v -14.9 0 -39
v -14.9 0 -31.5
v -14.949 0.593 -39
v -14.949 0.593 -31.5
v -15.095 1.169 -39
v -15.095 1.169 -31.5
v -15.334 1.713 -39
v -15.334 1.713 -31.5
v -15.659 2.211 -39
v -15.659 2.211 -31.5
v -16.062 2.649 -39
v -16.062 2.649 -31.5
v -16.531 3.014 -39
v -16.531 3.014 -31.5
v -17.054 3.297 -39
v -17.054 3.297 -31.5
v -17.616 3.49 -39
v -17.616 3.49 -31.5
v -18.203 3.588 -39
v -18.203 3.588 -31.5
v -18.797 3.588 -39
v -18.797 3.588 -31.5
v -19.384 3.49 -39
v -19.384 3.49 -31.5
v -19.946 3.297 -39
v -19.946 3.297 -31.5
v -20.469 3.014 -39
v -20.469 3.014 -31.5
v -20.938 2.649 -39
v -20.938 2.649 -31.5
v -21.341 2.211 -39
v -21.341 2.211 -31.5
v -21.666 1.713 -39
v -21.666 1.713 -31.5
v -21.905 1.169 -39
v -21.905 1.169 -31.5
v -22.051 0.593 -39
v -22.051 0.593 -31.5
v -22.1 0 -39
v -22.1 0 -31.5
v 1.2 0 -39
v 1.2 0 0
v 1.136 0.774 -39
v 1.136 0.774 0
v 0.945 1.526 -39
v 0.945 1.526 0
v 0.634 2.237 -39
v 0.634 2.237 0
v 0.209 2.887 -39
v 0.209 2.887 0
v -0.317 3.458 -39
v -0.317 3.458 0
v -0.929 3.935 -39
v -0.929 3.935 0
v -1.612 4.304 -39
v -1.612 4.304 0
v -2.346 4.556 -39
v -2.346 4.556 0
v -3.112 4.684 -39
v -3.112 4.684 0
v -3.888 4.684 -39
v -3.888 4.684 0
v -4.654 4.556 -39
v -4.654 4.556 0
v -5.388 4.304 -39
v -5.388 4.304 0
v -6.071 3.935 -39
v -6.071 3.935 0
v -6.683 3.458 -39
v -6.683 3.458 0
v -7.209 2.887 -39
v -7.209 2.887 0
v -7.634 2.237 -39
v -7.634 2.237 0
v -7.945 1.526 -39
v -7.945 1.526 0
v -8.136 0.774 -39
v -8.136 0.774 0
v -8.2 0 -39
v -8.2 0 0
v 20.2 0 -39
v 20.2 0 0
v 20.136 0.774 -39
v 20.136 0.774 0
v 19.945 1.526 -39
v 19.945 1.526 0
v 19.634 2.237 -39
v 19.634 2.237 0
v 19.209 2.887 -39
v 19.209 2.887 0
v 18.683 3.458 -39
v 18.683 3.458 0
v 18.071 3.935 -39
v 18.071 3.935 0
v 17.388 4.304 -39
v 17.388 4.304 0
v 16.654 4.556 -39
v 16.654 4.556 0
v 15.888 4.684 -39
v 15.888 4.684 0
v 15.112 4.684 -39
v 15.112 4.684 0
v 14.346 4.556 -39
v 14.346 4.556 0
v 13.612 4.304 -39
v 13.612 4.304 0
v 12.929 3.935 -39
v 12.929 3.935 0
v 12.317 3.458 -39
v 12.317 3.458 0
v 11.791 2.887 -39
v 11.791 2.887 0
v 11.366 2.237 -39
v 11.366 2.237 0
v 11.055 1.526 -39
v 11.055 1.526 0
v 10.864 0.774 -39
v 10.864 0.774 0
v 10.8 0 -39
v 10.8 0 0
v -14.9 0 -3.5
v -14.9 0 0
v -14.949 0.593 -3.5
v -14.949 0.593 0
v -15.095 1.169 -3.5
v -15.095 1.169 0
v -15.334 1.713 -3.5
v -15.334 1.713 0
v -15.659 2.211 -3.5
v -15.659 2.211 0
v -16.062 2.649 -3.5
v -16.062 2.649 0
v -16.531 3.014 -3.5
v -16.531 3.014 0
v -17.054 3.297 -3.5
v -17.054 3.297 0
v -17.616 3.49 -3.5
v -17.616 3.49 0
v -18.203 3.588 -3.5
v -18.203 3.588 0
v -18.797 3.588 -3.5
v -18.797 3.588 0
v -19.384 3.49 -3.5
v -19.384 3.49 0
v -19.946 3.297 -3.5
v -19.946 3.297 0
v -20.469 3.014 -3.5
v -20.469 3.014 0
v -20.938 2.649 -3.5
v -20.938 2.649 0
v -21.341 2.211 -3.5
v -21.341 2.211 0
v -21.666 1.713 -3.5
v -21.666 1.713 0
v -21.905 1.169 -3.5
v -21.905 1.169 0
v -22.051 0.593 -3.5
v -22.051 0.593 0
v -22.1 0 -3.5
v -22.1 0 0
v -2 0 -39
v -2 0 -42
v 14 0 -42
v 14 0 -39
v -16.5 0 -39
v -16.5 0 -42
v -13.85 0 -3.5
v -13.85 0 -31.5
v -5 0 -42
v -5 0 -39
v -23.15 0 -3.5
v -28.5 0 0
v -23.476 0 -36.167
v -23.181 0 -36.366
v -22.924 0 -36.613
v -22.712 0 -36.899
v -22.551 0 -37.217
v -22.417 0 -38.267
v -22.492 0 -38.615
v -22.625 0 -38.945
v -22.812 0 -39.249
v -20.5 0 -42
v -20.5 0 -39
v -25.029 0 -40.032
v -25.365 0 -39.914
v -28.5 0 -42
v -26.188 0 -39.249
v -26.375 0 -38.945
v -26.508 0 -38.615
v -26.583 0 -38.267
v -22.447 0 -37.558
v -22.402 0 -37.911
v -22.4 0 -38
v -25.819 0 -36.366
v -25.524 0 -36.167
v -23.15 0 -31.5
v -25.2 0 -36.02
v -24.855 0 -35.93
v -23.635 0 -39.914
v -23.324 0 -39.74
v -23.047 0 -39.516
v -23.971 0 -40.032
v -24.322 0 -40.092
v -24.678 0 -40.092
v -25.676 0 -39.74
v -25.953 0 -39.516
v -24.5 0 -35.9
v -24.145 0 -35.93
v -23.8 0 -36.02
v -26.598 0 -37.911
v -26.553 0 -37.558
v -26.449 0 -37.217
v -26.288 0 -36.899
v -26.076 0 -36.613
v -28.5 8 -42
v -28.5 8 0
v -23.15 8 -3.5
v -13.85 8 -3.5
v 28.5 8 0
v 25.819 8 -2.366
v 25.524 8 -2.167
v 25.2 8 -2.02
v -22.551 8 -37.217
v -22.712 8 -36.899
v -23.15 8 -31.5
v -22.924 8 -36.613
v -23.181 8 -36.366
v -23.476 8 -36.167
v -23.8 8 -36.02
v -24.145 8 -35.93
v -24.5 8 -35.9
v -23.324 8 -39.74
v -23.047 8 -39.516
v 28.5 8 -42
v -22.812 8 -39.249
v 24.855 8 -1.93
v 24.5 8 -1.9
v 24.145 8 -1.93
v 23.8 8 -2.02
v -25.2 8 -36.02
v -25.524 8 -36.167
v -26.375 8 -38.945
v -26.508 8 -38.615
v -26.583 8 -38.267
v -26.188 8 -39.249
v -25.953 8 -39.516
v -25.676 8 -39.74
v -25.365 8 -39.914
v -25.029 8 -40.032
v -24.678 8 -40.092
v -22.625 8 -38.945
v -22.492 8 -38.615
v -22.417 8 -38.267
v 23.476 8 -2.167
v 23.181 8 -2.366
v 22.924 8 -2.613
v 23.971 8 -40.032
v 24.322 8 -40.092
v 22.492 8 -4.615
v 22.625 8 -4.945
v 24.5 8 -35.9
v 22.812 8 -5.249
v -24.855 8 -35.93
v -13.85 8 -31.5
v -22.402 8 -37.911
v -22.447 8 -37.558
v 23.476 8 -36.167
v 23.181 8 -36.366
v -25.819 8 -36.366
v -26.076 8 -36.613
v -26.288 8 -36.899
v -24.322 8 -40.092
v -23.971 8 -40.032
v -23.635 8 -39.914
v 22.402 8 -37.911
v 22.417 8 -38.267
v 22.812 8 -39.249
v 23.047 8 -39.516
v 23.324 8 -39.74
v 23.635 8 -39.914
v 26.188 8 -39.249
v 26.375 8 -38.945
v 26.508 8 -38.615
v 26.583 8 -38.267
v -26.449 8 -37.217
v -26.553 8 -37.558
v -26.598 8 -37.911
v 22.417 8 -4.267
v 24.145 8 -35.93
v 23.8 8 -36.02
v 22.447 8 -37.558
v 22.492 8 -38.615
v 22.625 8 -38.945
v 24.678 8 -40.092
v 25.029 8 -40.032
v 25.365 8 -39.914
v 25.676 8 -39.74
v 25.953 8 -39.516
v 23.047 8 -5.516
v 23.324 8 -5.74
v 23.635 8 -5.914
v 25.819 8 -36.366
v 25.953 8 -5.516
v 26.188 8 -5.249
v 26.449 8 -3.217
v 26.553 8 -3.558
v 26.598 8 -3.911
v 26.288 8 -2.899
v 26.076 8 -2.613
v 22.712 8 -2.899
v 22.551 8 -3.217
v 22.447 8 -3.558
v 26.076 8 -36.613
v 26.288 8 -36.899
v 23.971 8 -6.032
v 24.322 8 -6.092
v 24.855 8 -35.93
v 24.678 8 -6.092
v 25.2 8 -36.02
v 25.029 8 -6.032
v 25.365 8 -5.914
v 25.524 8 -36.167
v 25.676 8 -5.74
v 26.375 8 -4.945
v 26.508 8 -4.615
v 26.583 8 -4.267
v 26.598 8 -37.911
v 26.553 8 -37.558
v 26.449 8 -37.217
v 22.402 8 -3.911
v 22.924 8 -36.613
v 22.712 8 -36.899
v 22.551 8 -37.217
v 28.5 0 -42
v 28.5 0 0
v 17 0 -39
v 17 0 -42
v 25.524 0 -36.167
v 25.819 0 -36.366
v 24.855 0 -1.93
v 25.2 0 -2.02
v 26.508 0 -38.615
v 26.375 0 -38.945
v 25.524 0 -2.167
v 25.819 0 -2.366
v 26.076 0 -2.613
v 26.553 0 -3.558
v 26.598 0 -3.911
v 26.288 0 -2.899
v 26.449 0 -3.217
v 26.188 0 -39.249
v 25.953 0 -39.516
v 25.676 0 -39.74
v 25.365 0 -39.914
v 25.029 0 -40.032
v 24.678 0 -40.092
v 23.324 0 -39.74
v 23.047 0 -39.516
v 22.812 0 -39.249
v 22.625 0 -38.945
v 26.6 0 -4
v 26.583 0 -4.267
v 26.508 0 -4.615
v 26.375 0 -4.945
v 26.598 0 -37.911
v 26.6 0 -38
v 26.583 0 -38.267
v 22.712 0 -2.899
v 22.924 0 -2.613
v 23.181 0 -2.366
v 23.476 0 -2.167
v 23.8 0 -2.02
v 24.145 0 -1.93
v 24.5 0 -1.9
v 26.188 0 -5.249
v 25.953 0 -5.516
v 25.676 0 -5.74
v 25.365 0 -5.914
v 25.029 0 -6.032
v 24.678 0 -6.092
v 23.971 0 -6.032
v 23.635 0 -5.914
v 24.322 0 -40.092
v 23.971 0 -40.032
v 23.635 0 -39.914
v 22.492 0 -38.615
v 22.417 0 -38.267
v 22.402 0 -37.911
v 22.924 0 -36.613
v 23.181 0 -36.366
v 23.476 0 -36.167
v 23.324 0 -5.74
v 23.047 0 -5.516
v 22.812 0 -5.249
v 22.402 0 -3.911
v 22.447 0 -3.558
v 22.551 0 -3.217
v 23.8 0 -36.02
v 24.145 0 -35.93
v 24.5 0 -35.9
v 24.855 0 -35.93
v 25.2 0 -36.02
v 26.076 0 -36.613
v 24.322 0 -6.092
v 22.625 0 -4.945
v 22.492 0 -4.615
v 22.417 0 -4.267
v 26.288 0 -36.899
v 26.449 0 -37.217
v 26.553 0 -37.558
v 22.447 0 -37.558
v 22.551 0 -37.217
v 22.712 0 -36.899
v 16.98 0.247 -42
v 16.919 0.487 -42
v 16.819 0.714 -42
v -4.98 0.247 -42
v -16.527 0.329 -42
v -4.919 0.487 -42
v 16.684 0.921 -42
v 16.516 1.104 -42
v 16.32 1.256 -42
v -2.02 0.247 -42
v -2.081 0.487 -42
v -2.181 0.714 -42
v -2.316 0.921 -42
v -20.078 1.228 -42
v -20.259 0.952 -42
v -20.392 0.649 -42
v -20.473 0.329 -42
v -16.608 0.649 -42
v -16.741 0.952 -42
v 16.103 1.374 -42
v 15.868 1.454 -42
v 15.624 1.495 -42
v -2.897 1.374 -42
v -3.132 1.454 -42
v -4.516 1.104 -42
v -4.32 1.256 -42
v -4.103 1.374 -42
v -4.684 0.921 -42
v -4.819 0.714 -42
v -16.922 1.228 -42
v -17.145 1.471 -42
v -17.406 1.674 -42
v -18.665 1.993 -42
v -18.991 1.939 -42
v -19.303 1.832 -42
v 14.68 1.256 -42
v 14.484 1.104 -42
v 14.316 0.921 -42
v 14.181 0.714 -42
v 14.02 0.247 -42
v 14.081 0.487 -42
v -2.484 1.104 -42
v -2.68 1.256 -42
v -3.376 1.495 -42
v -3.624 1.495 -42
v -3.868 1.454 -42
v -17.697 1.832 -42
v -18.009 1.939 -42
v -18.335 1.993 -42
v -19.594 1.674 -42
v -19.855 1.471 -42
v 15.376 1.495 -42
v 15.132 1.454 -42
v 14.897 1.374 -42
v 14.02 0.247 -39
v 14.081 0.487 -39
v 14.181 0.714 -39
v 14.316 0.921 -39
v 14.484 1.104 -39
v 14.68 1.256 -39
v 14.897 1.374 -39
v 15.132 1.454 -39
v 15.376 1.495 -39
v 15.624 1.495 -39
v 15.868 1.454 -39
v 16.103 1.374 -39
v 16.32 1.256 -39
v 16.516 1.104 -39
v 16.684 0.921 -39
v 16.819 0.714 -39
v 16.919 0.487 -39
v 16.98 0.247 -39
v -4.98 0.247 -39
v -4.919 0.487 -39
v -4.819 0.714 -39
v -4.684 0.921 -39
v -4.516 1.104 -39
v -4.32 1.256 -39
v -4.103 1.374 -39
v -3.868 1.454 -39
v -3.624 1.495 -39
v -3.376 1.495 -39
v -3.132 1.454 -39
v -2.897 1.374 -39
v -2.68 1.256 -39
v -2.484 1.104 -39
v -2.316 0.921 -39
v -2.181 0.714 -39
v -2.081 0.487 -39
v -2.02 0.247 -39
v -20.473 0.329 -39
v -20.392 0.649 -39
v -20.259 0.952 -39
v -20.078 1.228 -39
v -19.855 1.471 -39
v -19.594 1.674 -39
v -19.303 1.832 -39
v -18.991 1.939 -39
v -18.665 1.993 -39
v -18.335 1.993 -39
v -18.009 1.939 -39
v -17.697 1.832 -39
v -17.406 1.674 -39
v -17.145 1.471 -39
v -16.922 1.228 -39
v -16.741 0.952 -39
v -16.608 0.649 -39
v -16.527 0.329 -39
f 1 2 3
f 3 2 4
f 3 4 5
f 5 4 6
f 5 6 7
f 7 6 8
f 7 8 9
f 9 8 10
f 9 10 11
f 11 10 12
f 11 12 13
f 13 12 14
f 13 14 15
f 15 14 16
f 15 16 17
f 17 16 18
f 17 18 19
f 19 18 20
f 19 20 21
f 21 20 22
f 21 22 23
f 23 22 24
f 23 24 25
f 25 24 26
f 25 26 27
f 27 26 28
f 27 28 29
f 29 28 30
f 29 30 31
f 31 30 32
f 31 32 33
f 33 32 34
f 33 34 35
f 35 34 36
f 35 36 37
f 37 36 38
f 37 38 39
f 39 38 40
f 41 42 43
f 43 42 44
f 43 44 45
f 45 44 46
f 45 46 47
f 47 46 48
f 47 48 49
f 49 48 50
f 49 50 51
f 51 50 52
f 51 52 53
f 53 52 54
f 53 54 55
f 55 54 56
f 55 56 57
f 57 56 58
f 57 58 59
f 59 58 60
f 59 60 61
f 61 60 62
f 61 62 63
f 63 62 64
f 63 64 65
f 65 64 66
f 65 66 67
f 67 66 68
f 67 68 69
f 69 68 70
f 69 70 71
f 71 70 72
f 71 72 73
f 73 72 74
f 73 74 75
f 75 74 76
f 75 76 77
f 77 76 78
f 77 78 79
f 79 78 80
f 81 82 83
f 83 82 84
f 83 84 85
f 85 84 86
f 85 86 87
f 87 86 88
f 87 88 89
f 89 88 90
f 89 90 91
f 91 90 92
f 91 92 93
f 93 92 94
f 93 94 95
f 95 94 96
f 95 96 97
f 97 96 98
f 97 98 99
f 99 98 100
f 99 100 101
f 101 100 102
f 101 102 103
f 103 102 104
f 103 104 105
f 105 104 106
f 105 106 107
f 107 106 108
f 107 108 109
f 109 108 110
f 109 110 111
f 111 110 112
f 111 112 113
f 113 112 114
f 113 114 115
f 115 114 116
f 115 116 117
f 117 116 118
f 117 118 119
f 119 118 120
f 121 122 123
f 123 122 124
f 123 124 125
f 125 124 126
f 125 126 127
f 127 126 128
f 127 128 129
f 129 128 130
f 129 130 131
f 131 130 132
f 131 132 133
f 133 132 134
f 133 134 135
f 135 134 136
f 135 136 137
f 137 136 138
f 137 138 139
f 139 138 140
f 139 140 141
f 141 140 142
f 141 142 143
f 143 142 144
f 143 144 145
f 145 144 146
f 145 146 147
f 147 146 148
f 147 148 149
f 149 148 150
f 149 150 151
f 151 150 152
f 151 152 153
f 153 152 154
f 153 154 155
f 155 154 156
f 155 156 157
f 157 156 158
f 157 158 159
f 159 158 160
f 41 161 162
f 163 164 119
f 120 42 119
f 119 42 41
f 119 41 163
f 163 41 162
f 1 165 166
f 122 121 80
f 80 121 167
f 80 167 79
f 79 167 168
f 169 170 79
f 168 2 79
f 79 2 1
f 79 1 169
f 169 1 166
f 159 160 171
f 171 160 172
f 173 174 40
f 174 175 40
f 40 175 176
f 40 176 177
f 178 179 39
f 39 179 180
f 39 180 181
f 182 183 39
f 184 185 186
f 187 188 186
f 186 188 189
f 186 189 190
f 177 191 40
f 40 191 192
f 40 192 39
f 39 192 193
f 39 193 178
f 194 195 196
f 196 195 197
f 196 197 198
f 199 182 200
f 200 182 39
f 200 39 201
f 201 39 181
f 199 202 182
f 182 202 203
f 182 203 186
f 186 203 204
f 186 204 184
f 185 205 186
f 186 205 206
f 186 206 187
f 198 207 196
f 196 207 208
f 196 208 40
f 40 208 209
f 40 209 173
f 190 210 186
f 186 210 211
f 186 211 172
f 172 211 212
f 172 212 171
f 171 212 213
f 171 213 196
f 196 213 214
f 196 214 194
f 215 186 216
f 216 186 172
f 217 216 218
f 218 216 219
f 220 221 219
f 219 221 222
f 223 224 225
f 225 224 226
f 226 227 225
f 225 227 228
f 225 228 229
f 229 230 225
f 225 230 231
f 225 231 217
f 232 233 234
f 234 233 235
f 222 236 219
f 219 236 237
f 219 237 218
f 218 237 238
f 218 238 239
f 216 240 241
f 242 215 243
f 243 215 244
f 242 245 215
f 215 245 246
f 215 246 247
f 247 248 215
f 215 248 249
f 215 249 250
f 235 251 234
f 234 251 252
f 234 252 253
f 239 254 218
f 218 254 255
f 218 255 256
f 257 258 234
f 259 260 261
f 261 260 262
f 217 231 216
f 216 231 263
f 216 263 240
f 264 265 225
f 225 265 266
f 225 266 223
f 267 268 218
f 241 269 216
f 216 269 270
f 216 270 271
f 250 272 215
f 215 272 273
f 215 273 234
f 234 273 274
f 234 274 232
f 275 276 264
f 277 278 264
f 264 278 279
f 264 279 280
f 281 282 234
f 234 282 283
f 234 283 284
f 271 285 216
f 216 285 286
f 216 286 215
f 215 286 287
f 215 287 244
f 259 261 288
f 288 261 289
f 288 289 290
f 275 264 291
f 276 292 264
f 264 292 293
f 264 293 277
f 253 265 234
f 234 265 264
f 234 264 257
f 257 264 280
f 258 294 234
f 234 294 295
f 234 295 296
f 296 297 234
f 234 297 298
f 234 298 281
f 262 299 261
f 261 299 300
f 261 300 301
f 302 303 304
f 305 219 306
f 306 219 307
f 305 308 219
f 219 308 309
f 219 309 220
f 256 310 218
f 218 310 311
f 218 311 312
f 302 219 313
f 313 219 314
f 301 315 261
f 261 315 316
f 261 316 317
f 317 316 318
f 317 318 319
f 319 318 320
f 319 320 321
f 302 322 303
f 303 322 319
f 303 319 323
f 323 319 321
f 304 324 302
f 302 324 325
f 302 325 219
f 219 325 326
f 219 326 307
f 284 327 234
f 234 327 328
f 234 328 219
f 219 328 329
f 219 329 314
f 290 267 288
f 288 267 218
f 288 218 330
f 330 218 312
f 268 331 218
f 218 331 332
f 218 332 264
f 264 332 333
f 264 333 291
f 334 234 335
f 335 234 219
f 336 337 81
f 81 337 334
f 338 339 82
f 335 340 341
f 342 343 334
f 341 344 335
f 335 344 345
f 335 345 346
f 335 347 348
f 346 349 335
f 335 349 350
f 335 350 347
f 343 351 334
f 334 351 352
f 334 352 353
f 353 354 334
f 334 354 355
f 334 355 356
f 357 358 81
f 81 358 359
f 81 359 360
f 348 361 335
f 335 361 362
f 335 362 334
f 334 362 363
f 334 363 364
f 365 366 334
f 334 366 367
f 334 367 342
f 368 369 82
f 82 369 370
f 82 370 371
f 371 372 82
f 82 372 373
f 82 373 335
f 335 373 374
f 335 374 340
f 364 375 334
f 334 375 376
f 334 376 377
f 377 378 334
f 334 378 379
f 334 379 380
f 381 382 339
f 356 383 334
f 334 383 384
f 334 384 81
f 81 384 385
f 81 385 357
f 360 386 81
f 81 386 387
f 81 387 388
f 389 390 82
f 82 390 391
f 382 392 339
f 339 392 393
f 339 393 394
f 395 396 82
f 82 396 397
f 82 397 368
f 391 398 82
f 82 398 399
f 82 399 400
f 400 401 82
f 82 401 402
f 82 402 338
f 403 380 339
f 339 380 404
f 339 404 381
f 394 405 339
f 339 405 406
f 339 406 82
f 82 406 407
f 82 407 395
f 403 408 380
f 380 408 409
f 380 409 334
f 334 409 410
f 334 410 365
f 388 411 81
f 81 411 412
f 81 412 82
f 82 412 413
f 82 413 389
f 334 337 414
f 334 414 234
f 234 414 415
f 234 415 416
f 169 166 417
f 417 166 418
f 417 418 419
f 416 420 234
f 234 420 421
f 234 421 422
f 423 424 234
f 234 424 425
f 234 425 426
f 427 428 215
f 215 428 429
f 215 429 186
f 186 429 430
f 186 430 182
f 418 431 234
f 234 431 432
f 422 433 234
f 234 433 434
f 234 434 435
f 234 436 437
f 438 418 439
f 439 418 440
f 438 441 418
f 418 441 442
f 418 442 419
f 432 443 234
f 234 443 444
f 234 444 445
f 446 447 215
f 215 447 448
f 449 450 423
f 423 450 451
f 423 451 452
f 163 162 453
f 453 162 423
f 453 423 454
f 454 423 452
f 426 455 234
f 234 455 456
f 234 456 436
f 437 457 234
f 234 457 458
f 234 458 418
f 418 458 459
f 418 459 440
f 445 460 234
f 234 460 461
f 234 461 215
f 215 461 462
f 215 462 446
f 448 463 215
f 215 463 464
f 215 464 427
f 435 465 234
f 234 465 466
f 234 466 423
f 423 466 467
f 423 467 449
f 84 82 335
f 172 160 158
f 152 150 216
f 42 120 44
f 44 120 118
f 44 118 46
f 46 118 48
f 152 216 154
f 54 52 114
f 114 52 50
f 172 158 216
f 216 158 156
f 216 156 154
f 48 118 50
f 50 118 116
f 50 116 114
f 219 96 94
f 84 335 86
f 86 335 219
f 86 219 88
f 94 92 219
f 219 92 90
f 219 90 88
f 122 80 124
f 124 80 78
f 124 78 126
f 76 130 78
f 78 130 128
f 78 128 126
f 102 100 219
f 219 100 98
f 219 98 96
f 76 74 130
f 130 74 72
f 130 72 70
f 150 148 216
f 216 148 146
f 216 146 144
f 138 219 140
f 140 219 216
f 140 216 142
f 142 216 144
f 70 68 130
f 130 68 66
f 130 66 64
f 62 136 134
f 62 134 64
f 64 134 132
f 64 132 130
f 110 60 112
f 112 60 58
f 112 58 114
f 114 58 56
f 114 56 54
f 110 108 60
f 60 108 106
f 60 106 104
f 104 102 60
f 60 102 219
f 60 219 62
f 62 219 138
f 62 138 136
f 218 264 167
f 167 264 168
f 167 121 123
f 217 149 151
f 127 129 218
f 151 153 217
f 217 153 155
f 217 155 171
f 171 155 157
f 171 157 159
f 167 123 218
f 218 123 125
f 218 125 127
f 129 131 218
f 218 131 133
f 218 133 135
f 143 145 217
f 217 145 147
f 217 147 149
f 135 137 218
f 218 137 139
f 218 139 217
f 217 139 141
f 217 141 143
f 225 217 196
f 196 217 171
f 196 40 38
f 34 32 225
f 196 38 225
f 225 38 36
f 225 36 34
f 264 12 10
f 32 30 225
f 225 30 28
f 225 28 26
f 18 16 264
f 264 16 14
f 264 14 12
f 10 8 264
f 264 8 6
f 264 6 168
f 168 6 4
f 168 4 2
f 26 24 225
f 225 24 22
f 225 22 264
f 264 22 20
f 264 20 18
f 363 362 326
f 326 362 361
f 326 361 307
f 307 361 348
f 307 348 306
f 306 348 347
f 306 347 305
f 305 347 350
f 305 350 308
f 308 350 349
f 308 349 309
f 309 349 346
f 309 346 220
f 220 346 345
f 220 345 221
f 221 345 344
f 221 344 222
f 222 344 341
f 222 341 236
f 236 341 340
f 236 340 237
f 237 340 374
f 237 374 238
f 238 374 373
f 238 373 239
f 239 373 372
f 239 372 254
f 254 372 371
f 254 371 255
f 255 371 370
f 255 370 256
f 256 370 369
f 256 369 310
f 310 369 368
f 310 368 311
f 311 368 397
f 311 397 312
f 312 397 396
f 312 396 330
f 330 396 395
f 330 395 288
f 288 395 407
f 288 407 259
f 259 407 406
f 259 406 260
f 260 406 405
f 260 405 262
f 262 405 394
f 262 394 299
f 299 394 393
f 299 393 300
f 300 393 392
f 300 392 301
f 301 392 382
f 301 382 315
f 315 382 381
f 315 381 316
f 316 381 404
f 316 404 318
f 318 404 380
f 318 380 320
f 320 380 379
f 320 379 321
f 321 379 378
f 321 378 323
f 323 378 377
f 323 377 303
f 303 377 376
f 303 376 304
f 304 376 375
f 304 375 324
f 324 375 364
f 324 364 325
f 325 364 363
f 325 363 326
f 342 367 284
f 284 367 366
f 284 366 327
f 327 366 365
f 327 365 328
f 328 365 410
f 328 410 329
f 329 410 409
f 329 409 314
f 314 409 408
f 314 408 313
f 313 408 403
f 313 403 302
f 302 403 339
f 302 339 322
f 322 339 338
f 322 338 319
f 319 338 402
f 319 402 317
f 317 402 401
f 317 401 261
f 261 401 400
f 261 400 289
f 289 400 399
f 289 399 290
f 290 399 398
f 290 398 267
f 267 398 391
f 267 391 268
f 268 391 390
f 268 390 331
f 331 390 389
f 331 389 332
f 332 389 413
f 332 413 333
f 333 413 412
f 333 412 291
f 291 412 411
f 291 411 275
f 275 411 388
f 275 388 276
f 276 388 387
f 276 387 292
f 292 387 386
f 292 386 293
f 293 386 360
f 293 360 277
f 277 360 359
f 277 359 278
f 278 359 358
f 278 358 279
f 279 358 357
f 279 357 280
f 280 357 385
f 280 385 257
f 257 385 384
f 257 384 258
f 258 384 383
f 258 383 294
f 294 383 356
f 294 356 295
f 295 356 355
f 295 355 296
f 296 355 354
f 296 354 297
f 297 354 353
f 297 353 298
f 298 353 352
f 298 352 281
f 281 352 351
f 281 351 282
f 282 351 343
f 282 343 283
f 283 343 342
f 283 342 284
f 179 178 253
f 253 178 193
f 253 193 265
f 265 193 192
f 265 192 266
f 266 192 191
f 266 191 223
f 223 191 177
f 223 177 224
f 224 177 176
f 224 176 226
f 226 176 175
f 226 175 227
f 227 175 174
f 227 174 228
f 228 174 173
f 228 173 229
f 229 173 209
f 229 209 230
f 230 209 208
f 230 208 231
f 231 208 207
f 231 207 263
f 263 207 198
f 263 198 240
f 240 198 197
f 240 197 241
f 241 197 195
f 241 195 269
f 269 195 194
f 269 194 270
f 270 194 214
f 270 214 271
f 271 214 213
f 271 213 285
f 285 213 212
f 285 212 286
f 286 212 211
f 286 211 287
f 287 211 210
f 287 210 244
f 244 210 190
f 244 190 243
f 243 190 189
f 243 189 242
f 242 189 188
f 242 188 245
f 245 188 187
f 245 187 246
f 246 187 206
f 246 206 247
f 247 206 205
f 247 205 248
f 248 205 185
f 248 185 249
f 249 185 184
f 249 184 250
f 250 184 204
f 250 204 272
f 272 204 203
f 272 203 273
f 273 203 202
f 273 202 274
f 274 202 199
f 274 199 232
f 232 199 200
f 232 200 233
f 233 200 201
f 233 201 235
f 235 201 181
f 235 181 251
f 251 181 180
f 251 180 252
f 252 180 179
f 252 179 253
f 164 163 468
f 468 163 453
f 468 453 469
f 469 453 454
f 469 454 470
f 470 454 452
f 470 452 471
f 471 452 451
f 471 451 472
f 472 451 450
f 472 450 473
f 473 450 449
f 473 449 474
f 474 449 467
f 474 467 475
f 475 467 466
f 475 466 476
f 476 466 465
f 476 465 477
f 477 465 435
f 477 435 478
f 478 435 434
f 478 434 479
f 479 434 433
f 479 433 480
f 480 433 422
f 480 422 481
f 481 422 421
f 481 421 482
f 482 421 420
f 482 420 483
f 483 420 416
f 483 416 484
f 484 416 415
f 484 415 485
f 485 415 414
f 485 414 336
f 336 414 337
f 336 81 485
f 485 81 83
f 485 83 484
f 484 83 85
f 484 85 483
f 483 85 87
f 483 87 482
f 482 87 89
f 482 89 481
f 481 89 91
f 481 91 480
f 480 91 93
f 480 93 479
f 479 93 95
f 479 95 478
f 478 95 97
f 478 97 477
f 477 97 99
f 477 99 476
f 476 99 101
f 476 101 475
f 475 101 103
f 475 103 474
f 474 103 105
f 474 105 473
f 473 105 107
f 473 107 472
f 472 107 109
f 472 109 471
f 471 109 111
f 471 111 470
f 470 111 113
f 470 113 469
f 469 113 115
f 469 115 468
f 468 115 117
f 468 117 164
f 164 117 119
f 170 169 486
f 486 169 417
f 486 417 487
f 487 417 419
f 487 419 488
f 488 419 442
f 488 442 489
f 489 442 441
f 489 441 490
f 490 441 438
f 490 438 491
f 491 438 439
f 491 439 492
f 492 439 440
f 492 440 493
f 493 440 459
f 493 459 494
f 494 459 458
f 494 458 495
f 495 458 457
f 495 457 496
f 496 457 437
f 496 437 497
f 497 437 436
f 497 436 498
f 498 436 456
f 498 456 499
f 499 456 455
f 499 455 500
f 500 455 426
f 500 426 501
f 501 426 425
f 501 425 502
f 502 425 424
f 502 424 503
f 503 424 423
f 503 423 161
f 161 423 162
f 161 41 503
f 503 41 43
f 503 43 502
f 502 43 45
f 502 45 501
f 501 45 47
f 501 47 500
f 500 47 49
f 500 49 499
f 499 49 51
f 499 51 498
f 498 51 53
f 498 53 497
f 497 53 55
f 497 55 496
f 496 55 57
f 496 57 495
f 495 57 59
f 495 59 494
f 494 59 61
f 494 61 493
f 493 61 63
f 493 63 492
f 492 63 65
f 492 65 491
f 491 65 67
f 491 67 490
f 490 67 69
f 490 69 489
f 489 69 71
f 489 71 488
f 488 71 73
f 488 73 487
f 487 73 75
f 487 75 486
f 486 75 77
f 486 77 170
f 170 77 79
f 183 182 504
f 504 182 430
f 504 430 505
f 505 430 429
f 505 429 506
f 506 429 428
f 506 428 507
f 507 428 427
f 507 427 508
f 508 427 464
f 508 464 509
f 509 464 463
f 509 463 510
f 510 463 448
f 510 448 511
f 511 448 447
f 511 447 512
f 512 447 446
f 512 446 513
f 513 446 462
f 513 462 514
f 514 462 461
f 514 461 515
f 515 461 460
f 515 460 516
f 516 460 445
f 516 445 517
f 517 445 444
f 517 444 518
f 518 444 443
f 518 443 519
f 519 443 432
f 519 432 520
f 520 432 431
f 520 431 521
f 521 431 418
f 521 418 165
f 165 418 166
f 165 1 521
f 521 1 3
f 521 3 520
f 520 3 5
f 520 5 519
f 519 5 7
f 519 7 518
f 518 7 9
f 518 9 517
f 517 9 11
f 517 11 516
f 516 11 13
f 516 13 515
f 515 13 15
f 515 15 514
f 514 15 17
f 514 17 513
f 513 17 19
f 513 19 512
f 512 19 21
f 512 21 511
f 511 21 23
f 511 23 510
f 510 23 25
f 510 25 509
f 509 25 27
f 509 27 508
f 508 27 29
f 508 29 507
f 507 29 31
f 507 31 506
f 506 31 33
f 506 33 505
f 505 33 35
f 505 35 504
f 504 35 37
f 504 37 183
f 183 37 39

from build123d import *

# Parameters (mm, degrees)
SALIENTE_EXTRUIR1_DEPTH = 42
CROQUIS2_W              = 9.3
CROQUIS2_H              = 28
CORTAR_EXTRUIR1_DEPTH   = 50
CROQUIS3_R              = 2.1
CORTAR_EXTRUIR2_DEPTH   = 50
SALIENTE_EXTRUIR2_START = -3
SALIENTE_EXTRUIR2_DEPTH = 3


with BuildPart() as part:
    # Croquis1 → Saliente-Extruir1 (new body)
    with BuildSketch(Plane.XY):
        with BuildLine():
            Line((-28.5, 8), (-28.5, 0))
            Line((-28.5, 0), (-22.1, 0))
            ThreePointArc((-22.1, 0), (-18.5, 3.6), (-14.9, 0))
            Line((-14.9, 0), (-8.2, 0))
            ThreePointArc((-8.2, 0), (-3.5, 4.7), (1.2, 0))
            Line((1.2, 0), (10.8, 0))
            ThreePointArc((10.8, 0), (15.5, 4.7), (20.2, 0))
            Line((20.2, 0), (28.5, 0))
            Line((28.5, 0), (28.5, 8))
            Line((28.5, 8), (-28.5, 8))
        make_face()
    extrude(amount=-SALIENTE_EXTRUIR1_DEPTH)

    # Croquis2 → Cortar-Extruir1 (cut)
    with BuildSketch(Plane(origin=(0, 8, 0), x_dir=(1, 0, 0), z_dir=(0, 1, 0))):
        with Locations((-18.5, 17.5)):
            Rectangle(CROQUIS2_W, CROQUIS2_H)
    extrude(amount=-CORTAR_EXTRUIR1_DEPTH, mode=Mode.SUBTRACT)

    # Croquis3 → Cortar-Extruir2 (cut)
    with BuildSketch(Plane(origin=(0, 8, 0), x_dir=(1, 0, 0), z_dir=(0, 1, 0))):
        with Locations(Location((-24.5, 38, 0), (0, 0, 270))):
            Circle(CROQUIS3_R)
        with Locations(Location((24.5, 38, 0), (0, 0, 270))):
            Circle(CROQUIS3_R)
        with Locations(Location((24.5, 4, 0), (0, 0, 270))):
            Circle(CROQUIS3_R)
    extrude(amount=-CORTAR_EXTRUIR2_DEPTH, mode=Mode.SUBTRACT)

    # Croquis4 → Saliente-Extruir2 (add)
    with BuildSketch(Plane(origin=(0, 0, -42), x_dir=(-1, 0, 0), z_dir=(0, 0, -1)).offset(SALIENTE_EXTRUIR2_START)):
        with BuildLine():
            ThreePointArc((-10.8, 0), (-15.5, 4.7), (-20.2, 0))
            Line((-20.2, 0), (-17, 0))
            ThreePointArc((-17, 0), (-15.5, 1.5), (-14, 0))
            Line((-14, 0), (-10.8, 0))
        make_face()
        with BuildLine():
            ThreePointArc((8.2, 0), (3.5, 4.7), (-1.2, 0))
            Line((-1.2, 0), (2, 0))
            ThreePointArc((2, 0), (3.5, 1.5), (5, 0))
            Line((5, 0), (8.2, 0))
        make_face()
        with BuildLine():
            ThreePointArc((22.1, 0), (18.5, 3.6), (14.9, 0))
            Line((14.9, 0), (16.5, 0))
            ThreePointArc((16.5, 0), (18.5, 2), (20.5, 0))
            Line((20.5, 0), (22.1, 0))
        make_face()
    extrude(amount=SALIENTE_EXTRUIR2_DEPTH)


solid = part.part
